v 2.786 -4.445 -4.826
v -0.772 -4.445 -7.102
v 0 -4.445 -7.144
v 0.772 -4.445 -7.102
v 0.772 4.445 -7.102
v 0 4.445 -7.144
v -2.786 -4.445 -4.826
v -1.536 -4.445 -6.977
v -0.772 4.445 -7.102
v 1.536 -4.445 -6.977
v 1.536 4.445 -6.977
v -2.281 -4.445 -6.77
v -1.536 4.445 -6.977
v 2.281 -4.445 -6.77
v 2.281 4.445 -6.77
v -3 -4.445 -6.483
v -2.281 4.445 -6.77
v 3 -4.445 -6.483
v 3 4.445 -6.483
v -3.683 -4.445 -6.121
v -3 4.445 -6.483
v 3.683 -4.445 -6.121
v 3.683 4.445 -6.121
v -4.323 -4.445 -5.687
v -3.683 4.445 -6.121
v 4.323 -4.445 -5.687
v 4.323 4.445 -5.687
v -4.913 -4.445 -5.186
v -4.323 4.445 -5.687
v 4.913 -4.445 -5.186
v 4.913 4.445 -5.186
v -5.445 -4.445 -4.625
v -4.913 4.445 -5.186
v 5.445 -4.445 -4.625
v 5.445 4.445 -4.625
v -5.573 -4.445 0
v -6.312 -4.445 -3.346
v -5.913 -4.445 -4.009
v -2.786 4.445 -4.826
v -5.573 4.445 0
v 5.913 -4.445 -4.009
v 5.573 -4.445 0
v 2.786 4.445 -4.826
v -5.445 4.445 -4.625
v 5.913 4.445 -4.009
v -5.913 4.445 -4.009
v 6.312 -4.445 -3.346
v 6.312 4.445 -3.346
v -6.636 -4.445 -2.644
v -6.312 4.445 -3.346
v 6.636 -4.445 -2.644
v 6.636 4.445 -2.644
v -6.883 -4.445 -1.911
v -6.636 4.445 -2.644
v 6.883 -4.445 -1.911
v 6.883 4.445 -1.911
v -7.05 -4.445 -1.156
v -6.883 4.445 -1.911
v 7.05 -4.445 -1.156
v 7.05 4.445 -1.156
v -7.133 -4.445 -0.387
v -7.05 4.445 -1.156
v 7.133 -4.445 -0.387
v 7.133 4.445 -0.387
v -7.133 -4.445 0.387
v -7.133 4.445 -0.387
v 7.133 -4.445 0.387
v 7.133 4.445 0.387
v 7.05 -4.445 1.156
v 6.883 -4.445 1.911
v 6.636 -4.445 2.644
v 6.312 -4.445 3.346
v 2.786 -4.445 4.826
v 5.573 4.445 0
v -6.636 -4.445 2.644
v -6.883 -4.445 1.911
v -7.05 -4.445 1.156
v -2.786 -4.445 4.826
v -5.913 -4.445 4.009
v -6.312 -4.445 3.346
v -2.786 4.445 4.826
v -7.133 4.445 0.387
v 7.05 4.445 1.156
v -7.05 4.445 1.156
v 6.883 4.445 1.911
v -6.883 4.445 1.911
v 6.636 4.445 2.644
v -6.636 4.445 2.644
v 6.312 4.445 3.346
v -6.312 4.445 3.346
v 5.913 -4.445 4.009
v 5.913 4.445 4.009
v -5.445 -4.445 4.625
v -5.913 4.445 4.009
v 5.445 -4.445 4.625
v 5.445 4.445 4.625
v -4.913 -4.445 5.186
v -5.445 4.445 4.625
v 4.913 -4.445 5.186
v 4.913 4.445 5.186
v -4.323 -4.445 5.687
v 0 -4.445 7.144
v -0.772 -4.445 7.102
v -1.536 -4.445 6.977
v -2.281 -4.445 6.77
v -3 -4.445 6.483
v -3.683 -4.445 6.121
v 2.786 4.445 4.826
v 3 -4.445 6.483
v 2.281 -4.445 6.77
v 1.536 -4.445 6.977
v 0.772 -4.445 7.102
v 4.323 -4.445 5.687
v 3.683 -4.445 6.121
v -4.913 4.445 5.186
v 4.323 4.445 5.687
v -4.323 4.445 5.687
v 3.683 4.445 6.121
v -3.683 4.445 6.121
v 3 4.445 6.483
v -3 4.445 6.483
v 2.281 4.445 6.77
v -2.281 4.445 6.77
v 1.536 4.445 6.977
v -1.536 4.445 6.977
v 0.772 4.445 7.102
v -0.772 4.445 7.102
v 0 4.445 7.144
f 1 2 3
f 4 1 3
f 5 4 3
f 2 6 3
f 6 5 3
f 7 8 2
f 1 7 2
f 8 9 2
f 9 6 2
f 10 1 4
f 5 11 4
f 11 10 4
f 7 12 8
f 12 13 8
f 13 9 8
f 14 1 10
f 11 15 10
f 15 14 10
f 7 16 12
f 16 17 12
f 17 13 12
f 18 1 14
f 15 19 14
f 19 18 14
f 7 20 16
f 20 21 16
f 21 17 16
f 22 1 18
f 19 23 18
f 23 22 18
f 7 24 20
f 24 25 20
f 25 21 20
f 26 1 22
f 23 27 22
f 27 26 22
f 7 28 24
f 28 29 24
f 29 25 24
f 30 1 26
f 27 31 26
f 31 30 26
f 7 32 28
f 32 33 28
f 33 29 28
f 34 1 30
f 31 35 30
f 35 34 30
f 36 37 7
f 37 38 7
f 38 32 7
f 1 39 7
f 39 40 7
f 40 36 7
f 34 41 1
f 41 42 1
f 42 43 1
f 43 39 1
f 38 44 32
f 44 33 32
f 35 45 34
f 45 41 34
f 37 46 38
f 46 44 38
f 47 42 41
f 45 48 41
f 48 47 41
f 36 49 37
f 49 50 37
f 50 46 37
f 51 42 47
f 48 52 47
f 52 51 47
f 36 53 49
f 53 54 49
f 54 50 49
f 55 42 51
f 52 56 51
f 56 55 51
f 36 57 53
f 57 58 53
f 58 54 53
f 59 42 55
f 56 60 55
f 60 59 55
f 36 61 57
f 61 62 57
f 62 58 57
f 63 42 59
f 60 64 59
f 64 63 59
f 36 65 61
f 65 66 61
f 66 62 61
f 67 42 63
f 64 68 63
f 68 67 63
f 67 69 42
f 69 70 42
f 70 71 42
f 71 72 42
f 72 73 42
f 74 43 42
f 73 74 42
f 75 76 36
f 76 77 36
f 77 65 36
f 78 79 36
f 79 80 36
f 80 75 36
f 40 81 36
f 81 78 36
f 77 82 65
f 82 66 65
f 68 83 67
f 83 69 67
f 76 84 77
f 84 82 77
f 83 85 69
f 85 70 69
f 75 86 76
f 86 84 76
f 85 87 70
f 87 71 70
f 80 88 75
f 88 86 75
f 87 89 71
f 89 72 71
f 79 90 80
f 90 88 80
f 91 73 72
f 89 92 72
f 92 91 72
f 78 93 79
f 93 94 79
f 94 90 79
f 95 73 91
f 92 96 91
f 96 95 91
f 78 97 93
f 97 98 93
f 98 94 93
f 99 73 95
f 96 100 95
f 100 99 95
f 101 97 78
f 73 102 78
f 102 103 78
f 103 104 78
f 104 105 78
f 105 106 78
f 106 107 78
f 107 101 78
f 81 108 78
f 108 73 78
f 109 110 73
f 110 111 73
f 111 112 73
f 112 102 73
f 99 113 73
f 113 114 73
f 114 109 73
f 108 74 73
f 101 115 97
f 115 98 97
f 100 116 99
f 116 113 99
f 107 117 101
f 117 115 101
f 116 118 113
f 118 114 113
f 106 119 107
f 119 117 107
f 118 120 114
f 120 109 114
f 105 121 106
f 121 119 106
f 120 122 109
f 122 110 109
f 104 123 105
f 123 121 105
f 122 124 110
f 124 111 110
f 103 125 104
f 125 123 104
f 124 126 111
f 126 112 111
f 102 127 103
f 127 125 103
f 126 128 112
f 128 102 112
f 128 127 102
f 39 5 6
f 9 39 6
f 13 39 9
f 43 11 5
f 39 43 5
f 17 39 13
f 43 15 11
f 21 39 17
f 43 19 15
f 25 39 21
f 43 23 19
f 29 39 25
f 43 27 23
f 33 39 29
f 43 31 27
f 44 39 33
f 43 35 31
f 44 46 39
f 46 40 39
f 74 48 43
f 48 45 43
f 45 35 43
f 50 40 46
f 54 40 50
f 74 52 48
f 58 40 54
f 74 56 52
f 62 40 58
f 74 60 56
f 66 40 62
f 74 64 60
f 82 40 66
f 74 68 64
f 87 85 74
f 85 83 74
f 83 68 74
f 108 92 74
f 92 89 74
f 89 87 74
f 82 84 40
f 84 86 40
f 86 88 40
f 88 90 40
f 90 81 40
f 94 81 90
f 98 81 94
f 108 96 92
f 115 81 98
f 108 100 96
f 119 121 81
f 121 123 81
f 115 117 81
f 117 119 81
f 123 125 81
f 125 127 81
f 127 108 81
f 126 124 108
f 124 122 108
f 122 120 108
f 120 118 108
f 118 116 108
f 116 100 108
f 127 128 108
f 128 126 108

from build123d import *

# Parameters (mm, degrees)
SKETCH1_R           = 7.14375
BOSS_EXTRUDE1_DEPTH = 4.445


with BuildPart() as part:
    # Sketch1 → Boss-Extrude1 (new, symmetric)
    with BuildSketch(Plane(origin=(0, 0, 0), x_dir=(1, 0, 0), z_dir=(0, 1, 0))):
        with Locations(Location((0, 0, 0), (0, 0, 270))):
            Circle(SKETCH1_R)
        Polygon((2.786292399, -4.826), (5.572584798, 0), (2.786292399, 4.826), (-2.786292399, 4.826), (-5.572584798, 0), (-2.786292399, -4.826), align=None, mode=Mode.SUBTRACT)
    extrude(amount=BOSS_EXTRUDE1_DEPTH, both=True)


solid = part.part
